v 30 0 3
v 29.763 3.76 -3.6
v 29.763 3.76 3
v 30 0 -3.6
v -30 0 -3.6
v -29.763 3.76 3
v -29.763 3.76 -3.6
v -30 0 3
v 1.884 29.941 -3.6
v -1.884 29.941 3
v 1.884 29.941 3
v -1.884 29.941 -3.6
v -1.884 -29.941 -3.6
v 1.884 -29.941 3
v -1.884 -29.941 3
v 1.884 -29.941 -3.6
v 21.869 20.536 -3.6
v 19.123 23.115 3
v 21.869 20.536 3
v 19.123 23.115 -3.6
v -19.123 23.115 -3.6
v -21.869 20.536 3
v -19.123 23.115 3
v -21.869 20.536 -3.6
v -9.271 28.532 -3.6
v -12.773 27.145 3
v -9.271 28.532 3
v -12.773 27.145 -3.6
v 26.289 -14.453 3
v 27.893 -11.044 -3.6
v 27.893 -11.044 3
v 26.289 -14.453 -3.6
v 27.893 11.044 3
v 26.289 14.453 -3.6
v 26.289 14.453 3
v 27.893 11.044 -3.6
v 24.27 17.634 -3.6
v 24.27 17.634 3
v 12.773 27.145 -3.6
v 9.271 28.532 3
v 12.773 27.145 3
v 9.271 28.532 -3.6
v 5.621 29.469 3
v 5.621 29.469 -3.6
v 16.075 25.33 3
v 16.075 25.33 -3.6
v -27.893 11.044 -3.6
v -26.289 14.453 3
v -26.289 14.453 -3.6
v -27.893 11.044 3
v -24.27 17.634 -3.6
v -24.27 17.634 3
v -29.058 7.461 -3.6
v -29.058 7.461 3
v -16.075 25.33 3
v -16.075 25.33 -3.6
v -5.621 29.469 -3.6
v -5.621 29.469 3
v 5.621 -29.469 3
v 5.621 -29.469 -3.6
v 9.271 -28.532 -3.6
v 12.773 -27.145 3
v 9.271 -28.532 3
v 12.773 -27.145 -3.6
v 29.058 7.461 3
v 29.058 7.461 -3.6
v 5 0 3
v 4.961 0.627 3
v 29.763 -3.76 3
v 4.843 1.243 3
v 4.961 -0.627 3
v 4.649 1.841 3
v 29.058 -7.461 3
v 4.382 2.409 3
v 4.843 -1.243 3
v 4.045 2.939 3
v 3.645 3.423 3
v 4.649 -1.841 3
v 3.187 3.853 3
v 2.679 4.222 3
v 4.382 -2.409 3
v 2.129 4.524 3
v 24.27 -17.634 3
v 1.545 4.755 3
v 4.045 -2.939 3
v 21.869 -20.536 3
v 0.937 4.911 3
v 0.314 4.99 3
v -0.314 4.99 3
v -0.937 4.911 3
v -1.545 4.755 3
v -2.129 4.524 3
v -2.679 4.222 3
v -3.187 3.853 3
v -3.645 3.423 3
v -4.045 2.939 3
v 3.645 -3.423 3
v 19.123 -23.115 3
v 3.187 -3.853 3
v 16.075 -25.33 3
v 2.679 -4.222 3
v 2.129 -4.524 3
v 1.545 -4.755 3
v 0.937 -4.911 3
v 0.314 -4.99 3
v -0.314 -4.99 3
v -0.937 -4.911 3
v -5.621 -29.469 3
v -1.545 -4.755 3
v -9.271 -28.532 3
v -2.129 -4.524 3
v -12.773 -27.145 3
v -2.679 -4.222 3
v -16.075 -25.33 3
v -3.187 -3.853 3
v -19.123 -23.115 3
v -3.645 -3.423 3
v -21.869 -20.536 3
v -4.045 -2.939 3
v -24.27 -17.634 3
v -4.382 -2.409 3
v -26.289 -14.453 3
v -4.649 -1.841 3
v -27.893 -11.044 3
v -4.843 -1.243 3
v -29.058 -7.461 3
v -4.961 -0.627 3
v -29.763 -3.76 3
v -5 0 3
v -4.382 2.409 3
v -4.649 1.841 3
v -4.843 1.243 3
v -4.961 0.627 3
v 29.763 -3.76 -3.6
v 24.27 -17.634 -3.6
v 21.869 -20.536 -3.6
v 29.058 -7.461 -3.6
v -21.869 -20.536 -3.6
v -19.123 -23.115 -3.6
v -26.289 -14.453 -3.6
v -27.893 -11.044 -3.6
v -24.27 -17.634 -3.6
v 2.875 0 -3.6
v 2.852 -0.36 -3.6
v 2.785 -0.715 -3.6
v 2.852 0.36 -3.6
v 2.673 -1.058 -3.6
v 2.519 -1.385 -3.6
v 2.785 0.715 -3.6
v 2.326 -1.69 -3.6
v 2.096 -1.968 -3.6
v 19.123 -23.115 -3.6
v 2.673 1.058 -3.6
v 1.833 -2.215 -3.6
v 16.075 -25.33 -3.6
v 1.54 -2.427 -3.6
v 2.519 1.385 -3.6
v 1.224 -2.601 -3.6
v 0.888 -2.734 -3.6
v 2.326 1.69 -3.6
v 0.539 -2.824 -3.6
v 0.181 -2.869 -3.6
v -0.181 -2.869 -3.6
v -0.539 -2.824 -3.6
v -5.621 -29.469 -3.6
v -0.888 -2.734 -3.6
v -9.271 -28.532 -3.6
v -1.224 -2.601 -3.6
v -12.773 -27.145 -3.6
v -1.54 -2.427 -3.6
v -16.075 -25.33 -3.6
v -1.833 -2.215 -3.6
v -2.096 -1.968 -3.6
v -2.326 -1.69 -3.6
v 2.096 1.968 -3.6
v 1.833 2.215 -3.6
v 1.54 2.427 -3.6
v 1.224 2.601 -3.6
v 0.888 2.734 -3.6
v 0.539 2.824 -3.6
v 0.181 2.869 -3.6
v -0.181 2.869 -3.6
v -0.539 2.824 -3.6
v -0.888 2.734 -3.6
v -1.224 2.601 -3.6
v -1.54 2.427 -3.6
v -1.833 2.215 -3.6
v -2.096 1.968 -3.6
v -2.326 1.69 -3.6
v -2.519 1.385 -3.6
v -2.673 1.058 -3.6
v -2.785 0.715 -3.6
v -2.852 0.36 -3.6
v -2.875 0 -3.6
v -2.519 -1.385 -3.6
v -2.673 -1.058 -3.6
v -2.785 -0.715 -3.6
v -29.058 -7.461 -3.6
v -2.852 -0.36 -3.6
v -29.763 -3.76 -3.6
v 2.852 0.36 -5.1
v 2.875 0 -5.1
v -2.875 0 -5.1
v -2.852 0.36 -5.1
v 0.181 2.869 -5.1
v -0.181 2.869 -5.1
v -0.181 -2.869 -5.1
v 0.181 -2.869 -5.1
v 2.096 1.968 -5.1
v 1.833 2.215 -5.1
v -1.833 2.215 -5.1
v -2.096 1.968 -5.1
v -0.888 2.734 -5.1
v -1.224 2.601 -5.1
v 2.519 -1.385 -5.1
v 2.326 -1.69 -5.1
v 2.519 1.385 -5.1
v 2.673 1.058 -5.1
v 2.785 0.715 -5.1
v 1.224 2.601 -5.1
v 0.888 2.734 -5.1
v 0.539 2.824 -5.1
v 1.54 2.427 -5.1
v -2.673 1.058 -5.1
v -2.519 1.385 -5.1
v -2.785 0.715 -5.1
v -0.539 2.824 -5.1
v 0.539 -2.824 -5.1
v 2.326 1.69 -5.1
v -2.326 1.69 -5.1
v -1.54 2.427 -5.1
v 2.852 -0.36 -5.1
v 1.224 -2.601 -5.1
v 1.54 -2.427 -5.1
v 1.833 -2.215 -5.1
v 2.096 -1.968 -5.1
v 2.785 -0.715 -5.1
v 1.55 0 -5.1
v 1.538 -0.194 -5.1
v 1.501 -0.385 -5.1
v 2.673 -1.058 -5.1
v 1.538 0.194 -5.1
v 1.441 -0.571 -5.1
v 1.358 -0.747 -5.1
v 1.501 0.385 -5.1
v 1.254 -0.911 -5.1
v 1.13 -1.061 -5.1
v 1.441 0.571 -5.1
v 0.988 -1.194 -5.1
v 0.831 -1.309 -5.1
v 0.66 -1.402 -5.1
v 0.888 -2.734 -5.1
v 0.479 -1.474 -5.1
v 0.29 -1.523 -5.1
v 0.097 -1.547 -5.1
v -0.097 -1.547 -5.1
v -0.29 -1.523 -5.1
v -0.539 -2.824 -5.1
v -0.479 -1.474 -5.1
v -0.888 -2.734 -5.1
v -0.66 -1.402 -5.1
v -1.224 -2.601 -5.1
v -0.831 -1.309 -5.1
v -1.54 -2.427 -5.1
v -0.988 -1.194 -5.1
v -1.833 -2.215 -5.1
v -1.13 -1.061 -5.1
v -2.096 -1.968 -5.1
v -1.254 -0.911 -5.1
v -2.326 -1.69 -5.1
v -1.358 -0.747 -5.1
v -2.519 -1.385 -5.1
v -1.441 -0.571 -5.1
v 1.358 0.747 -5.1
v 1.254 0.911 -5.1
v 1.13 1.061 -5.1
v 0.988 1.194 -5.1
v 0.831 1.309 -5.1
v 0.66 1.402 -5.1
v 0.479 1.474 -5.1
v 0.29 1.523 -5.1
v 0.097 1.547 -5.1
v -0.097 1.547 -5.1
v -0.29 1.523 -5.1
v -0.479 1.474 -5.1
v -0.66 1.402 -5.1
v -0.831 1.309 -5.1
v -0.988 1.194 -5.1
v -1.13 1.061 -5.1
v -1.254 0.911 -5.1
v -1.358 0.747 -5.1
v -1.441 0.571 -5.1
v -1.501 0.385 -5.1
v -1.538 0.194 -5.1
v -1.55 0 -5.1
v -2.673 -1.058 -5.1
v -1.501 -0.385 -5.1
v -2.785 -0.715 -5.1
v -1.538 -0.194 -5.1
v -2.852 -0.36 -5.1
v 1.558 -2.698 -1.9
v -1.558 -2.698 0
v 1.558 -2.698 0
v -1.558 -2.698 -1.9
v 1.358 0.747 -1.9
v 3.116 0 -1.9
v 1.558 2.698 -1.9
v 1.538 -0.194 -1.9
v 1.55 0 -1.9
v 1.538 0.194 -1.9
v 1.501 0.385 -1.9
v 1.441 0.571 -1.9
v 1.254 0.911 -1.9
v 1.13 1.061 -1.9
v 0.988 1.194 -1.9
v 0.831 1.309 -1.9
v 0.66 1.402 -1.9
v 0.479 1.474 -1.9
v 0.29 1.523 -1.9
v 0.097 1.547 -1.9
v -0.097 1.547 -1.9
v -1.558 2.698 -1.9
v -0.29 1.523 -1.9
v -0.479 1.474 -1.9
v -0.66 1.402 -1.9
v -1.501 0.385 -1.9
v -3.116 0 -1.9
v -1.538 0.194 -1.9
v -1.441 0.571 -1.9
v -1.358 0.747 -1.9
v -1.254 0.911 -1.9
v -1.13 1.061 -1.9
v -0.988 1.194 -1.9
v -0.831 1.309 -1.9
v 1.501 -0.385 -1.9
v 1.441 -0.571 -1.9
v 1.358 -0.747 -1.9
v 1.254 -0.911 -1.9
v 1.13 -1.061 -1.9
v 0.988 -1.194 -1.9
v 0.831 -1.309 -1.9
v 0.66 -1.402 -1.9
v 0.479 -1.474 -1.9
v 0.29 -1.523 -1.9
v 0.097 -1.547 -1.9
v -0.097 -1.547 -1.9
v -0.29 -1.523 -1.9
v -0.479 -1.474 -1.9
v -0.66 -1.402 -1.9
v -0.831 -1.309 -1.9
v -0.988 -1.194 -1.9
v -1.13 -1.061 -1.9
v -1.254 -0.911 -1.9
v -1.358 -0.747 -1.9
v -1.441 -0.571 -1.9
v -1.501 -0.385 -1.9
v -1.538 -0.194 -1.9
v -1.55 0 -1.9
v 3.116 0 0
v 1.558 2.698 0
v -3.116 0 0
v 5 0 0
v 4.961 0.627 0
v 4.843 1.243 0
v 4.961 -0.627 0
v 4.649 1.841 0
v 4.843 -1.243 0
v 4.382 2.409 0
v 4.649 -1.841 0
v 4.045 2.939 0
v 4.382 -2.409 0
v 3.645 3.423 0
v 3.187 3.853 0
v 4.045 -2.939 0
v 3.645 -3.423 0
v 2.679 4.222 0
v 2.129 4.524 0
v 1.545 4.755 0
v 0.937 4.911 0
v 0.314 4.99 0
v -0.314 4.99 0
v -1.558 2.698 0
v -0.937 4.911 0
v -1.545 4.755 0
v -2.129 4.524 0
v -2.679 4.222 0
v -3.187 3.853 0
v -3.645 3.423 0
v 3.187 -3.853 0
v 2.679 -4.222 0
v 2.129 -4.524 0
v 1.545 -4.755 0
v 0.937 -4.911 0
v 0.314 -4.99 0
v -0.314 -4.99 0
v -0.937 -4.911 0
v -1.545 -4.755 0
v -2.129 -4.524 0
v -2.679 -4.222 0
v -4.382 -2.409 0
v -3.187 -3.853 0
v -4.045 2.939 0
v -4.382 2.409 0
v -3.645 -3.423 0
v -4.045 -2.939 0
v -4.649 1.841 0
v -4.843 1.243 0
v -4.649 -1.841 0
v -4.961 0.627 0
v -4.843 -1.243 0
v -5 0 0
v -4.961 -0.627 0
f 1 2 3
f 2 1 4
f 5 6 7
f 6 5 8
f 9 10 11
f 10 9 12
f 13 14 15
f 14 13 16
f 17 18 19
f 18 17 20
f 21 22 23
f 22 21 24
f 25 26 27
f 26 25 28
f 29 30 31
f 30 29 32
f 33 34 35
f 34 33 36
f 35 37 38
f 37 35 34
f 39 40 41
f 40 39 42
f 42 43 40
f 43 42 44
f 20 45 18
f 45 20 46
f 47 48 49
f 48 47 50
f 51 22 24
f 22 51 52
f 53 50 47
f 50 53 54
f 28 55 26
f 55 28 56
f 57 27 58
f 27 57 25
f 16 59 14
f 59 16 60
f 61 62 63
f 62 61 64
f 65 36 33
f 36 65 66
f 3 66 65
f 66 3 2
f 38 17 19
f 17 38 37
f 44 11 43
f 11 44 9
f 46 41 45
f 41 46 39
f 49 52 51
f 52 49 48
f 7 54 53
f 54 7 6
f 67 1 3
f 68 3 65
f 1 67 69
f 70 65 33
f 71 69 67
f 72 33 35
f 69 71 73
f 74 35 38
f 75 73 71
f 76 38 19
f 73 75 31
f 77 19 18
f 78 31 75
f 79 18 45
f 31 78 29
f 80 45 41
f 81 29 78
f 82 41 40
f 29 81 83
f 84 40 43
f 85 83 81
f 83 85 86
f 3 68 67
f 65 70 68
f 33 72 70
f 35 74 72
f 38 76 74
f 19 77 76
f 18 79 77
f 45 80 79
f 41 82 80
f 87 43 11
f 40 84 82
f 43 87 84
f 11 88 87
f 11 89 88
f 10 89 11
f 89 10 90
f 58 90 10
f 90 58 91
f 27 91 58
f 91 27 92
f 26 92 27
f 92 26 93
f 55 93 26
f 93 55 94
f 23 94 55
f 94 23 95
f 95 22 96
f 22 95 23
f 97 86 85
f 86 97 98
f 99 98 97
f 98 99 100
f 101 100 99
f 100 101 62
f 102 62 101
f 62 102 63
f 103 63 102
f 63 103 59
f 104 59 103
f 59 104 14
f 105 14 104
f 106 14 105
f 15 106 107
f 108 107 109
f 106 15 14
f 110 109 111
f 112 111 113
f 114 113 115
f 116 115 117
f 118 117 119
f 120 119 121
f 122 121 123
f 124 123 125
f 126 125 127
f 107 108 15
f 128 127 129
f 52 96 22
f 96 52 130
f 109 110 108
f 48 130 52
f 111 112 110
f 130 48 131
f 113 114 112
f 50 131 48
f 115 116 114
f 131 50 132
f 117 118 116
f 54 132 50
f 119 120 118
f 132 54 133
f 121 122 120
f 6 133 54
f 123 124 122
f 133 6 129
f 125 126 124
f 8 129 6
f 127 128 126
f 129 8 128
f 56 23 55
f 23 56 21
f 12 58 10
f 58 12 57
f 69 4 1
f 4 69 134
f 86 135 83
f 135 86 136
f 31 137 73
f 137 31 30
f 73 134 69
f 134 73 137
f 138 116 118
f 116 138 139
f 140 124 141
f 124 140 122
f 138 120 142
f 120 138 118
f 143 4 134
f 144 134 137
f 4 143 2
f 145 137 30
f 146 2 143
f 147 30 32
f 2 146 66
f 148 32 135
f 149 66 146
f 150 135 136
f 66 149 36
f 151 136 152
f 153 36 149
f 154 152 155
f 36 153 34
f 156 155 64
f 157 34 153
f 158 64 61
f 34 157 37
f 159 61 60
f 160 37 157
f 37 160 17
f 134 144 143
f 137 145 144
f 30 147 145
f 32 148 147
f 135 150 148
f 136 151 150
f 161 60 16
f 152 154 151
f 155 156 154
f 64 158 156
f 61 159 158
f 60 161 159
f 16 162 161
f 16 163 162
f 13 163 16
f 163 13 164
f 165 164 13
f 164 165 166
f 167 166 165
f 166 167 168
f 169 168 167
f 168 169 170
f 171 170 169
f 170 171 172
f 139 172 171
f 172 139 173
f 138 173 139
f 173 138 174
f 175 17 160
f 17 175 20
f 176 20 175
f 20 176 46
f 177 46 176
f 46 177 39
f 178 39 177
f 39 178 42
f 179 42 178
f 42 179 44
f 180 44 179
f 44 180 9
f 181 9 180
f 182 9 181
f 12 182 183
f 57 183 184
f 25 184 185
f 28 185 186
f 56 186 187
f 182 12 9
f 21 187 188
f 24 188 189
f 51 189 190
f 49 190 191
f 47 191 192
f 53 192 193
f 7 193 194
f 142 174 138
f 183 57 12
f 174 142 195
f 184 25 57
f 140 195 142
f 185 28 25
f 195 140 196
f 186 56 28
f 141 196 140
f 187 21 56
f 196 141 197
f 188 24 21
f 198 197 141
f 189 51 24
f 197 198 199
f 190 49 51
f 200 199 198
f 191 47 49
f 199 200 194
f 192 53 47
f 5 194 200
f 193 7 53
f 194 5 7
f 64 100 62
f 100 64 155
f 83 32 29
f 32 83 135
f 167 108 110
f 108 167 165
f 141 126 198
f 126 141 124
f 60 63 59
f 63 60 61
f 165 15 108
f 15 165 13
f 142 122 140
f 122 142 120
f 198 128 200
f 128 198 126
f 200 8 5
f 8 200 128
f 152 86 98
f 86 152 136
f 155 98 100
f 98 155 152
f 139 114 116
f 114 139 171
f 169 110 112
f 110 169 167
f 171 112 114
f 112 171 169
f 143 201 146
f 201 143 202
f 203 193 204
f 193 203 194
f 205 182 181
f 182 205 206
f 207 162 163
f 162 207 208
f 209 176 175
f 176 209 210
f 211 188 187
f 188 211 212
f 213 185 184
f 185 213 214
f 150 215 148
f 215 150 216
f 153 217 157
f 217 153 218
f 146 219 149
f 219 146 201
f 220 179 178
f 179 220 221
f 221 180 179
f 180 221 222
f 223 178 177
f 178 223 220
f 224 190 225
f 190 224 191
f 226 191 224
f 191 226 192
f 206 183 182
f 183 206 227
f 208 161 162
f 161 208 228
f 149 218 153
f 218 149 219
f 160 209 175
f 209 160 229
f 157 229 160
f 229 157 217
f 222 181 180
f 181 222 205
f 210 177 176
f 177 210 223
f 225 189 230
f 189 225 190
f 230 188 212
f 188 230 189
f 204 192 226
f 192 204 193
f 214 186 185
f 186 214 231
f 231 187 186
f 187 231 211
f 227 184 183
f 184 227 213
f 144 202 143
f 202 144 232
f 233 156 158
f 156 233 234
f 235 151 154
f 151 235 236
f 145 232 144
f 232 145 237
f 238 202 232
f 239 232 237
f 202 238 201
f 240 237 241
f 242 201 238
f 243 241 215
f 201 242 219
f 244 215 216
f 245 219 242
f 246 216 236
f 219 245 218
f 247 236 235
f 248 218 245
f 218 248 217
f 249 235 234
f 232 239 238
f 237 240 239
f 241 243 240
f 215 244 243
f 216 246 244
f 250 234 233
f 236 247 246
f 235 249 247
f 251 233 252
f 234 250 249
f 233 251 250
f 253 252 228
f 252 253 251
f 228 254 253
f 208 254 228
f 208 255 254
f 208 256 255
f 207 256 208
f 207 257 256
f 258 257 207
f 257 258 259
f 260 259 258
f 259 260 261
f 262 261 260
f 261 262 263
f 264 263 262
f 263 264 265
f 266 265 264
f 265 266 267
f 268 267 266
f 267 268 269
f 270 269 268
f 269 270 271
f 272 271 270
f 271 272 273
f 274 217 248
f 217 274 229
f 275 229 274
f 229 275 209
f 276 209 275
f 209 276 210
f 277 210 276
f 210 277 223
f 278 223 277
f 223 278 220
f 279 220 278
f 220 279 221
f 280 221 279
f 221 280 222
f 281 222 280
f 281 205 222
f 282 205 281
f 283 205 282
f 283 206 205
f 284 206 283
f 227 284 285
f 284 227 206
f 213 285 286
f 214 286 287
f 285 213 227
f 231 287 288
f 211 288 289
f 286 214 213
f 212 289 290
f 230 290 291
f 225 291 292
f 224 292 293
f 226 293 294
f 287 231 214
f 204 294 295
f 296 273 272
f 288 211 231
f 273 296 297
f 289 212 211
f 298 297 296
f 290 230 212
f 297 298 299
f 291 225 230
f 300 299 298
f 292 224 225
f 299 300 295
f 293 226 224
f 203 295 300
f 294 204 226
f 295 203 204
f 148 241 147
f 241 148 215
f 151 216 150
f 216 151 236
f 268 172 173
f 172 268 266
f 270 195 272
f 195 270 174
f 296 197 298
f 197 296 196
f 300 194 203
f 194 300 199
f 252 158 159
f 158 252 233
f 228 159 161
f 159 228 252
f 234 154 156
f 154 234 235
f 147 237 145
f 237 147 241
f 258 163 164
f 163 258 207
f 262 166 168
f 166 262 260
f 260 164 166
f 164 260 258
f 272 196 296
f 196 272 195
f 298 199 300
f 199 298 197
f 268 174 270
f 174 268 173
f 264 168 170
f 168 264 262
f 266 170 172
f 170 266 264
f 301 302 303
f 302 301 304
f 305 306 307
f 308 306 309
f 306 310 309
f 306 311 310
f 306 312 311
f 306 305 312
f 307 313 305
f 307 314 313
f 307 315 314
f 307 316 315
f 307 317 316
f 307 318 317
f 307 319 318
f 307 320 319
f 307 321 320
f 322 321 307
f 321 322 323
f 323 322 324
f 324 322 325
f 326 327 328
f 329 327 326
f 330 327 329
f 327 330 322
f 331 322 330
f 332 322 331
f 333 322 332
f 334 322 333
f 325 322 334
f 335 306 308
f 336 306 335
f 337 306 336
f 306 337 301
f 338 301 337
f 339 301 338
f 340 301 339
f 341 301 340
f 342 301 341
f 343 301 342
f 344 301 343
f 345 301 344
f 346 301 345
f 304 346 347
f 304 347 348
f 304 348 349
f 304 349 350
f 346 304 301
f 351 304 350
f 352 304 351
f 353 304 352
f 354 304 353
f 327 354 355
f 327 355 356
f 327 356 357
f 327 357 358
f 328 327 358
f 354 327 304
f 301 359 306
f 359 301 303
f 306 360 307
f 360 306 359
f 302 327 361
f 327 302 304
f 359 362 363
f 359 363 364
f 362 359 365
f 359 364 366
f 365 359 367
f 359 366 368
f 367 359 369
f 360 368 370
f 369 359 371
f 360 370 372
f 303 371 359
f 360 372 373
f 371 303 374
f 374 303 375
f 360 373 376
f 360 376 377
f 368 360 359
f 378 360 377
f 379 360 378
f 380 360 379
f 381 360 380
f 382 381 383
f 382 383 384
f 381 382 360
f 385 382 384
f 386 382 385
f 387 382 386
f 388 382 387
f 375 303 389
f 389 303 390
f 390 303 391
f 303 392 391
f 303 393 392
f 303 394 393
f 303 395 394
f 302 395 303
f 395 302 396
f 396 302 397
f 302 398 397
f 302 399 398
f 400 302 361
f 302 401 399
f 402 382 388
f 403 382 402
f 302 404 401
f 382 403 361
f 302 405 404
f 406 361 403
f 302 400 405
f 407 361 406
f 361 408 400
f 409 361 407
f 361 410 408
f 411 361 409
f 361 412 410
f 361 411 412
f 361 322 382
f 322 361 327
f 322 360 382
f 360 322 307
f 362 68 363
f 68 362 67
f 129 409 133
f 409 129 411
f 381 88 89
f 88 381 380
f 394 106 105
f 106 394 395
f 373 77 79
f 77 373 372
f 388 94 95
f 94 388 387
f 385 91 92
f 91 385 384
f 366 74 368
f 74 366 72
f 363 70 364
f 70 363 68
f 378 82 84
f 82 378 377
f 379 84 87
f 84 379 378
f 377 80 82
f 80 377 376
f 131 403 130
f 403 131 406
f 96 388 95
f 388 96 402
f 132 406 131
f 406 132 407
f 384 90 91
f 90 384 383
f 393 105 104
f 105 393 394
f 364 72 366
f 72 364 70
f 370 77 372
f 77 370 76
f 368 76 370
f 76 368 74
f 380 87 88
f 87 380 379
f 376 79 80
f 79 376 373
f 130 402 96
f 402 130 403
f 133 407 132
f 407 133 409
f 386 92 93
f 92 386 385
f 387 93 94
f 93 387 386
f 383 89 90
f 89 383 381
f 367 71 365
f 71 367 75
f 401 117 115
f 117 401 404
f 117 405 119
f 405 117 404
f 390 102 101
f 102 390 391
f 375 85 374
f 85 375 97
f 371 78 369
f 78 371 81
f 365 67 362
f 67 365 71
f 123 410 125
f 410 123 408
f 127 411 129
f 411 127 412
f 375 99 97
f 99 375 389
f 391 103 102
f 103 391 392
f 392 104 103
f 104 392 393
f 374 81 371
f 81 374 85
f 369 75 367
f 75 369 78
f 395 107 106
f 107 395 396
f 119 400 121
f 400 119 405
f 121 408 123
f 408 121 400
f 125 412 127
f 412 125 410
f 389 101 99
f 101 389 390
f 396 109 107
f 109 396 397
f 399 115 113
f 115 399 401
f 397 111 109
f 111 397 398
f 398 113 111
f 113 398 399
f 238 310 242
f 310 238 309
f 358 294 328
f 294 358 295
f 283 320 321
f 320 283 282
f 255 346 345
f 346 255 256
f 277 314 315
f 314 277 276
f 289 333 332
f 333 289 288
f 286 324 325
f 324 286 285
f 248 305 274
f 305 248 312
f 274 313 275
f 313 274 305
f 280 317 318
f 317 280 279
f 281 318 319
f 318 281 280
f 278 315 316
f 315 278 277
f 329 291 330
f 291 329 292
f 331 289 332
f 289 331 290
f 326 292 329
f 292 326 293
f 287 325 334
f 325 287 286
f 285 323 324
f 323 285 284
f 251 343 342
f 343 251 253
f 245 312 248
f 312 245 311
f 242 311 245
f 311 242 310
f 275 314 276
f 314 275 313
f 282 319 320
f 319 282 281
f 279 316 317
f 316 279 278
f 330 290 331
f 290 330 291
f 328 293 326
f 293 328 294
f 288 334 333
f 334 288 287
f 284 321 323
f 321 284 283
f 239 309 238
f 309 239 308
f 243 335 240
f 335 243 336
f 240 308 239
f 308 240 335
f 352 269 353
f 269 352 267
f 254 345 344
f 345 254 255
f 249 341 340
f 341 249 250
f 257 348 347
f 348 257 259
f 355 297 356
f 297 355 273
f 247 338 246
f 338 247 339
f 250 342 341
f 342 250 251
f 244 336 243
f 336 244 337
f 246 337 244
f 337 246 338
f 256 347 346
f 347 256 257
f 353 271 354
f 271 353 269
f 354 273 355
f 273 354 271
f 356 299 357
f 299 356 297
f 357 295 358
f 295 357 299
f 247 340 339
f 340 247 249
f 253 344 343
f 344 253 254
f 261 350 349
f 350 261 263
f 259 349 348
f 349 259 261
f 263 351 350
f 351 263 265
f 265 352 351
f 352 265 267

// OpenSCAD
$fn = 50;


difference() {
	union() {
		translate(v = [0, 0, -3.6000000000]) {
			cylinder(h = 6.6000000000, r = 30.0000000000);
		}
		#translate(v = [0, 0, -5.1000000000]) {
			cylinder(h = 5.1000000000, r = 2.8750000000);
		}
	}
	union() {
		translate(v = [0, 0, 0]) {
			rotate(a = [0, 0, 0]) {
				difference() {
					union() {
						translate(v = [0, 0, -1.9000000000]) {
							linear_extrude(height = 1.9000000000) {
								polygon(points = [[3.1158000000, 0.0000000000], [1.5579000000, 2.6983619531], [-1.5579000000, 2.6983619531], [-3.1158000000, 0.0000000000], [-1.5579000000, -2.6983619531], [1.5579000000, -2.6983619531]]);
							}
						}
					}
					union();
				}
			}
		}
		#cylinder(h = 3, r = 5.0000000000);
		#translate(v = [0, 0, -100.0000000000]) {
			cylinder(h = 200, r = 1.5500000000);
		}
	}
}
